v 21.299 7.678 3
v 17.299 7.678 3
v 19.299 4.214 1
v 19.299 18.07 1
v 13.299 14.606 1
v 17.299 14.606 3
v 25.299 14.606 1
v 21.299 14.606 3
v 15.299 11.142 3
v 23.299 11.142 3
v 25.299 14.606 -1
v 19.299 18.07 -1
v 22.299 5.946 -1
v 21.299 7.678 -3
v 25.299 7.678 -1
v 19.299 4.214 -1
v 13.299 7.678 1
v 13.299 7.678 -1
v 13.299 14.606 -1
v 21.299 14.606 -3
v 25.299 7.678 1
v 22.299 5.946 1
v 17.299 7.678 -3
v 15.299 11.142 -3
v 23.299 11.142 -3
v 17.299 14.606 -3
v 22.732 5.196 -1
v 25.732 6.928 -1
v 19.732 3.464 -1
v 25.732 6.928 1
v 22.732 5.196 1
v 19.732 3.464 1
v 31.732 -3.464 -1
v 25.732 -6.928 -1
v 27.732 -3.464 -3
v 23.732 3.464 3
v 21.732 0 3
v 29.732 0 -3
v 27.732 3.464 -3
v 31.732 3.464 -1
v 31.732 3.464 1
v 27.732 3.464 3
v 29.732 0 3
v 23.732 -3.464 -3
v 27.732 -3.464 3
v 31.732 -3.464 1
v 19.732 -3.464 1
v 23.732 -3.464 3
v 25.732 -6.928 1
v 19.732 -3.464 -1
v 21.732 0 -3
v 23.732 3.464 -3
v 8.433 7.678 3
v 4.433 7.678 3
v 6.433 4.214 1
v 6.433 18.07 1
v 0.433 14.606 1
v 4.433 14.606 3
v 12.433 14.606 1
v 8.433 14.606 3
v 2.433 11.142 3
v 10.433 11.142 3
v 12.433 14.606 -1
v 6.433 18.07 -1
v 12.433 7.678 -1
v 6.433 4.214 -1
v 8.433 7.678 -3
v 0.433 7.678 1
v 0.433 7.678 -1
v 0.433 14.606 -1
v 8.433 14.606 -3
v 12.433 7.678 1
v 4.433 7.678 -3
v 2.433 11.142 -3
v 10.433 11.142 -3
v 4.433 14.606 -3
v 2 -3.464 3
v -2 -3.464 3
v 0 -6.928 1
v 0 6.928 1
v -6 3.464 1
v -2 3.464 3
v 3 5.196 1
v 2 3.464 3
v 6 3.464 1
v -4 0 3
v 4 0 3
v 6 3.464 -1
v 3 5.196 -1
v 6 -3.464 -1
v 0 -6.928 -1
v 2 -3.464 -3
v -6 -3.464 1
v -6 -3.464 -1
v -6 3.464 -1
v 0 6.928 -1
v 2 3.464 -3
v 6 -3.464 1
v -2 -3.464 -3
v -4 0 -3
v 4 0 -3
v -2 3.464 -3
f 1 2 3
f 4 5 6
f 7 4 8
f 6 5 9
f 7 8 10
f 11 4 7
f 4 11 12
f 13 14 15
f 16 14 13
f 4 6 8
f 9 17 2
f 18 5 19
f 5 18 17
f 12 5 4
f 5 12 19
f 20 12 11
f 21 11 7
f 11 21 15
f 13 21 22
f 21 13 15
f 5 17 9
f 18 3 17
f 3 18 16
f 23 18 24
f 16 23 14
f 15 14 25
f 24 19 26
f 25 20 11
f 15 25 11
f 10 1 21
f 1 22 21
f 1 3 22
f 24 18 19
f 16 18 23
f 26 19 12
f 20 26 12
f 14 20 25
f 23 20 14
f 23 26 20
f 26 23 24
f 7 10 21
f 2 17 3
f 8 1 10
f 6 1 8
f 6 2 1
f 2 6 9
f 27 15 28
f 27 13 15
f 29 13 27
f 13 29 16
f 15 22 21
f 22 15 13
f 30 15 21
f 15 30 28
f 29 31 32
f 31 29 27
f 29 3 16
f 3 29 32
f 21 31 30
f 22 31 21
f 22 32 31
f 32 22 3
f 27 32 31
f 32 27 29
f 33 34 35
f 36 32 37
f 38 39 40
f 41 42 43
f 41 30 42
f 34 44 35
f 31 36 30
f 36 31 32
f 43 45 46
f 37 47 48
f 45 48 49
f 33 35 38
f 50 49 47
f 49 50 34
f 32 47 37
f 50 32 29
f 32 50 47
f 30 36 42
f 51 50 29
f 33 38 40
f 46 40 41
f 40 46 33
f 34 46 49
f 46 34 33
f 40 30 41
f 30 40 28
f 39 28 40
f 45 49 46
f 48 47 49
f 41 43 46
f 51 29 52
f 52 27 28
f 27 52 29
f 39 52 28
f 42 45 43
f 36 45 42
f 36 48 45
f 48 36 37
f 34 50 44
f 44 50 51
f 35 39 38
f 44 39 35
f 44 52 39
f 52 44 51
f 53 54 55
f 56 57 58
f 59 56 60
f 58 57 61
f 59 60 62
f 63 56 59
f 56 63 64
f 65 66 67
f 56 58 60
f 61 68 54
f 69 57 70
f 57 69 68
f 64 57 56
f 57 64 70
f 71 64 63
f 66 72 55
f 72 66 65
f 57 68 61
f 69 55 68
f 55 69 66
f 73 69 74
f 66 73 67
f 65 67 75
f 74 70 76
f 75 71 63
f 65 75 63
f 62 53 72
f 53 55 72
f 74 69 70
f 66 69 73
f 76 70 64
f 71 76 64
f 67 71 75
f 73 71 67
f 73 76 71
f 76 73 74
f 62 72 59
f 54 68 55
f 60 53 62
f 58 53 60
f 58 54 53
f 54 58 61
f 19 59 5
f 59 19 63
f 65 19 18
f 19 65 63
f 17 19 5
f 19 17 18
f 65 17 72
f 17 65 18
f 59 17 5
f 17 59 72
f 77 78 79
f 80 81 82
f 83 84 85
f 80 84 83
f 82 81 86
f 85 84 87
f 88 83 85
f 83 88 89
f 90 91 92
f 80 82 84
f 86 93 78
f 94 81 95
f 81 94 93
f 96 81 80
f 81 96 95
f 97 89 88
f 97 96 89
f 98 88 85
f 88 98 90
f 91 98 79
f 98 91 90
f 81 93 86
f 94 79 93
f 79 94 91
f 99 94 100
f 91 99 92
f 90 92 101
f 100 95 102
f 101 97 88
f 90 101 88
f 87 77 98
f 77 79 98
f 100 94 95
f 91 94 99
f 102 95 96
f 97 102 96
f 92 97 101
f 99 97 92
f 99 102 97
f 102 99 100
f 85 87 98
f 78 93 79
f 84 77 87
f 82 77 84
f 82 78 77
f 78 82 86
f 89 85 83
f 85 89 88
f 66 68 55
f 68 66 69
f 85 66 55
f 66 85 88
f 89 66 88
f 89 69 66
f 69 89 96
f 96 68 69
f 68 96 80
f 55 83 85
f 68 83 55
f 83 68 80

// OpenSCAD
// file: gem-common.scad
angles = [for(i = [0:5]) i * (360 / 6)];

inner_poly_radius=8 * cos(60);
outer_poly_radius=8 * cos(30);
outer_poly_z=1;
inner_poly_z=3;


gap_between_gems = cos(30);
distance_to_corner = cos(30) * outer_poly_radius * 2 + gap_between_gems;


module edge_connector(angle = 0) {
    function make_point_2d(r, angle, height) = [r * sin(angle), height];
    
    points = [
        make_point_2d(outer_poly_radius, 30, outer_poly_z),
        make_point_2d(outer_poly_radius, -30, outer_poly_z),
        make_point_2d(outer_poly_radius, -30, -outer_poly_z),
        make_point_2d(outer_poly_radius, 30, -outer_poly_z),
    ];
    
    rotate([0,0,angle]) {
        translate([(distance_to_corner - gap_between_gems) / 2,0,0]){
            rotate([90, 0, 90]) {
                linear_extrude(gap_between_gems) {
                    polygon(points);
                }
            }
        }
    }
}

module move(distance, angle) {
    translate([distance * cos(angle), distance * sin(angle), 0]) {
        children();
    }
}


module corner_connector(angle=0) {
    r = 0.5;
    rotate_angle = angle + 30;
    move(outer_poly_radius + r, rotate_angle) {
        translate([0,0, -outer_poly_z]) {
            rotate([0,0,-rotate_angle]) {
                cylinder($fn=3, r=r, h=outer_poly_z * 2);
            }
        }
    }
}

module gem() {
    function make_point(r, angle, height) = [r * cos(angle), r * sin(angle), height];
    
    top_poly = [for(th = angles) make_point(inner_poly_radius, th, inner_poly_z)];
    top_outer_poly = [for(th = angles) make_point(outer_poly_radius, th + 30, outer_poly_z)];
    bottom_outer_poly = [for(th = angles) make_point(outer_poly_radius, th + 30, -outer_poly_z)];
    bottom_poly = [for(th = angles) make_point(inner_poly_radius, th, -inner_poly_z)];
 
    function rot(n, base) = (n + 1 - base) % 6 + base;
    
    faces = [
        [5, 4, 3, 2, 1, 0],
        for(i = [0:5]) [i, (i + 1) % 6, i + 6],
        for(i = [6:11]) [i, (i - 5) % 6, rot(i, 6)],
        for(i = [6:11]) [i, rot(i, 6), rot(i, 6) + 6, i + 6],
        for(i = [12:17]) [i, rot(i, 12), rot(i, 12) + 6],
        for(i = [18:23]) [i, i-6, rot(i, 18)],
        [18, 19, 20, 21, 22, 23],
    ];
    
    polyhedron(
        concat(
            top_poly,
            top_outer_poly,
            bottom_outer_poly,
            bottom_poly
        ),
        faces
    );
}
// main file
include <./gem-common.scad>

gem();
edge_connector(60);
move(distance_to_corner, 60) {
    gem();
    edge_connector(0);
    move(distance_to_corner, 0) {
        gem();
        edge_connector(-60);
        move(distance_to_corner, -60) {
            gem();
        }
    }
}
